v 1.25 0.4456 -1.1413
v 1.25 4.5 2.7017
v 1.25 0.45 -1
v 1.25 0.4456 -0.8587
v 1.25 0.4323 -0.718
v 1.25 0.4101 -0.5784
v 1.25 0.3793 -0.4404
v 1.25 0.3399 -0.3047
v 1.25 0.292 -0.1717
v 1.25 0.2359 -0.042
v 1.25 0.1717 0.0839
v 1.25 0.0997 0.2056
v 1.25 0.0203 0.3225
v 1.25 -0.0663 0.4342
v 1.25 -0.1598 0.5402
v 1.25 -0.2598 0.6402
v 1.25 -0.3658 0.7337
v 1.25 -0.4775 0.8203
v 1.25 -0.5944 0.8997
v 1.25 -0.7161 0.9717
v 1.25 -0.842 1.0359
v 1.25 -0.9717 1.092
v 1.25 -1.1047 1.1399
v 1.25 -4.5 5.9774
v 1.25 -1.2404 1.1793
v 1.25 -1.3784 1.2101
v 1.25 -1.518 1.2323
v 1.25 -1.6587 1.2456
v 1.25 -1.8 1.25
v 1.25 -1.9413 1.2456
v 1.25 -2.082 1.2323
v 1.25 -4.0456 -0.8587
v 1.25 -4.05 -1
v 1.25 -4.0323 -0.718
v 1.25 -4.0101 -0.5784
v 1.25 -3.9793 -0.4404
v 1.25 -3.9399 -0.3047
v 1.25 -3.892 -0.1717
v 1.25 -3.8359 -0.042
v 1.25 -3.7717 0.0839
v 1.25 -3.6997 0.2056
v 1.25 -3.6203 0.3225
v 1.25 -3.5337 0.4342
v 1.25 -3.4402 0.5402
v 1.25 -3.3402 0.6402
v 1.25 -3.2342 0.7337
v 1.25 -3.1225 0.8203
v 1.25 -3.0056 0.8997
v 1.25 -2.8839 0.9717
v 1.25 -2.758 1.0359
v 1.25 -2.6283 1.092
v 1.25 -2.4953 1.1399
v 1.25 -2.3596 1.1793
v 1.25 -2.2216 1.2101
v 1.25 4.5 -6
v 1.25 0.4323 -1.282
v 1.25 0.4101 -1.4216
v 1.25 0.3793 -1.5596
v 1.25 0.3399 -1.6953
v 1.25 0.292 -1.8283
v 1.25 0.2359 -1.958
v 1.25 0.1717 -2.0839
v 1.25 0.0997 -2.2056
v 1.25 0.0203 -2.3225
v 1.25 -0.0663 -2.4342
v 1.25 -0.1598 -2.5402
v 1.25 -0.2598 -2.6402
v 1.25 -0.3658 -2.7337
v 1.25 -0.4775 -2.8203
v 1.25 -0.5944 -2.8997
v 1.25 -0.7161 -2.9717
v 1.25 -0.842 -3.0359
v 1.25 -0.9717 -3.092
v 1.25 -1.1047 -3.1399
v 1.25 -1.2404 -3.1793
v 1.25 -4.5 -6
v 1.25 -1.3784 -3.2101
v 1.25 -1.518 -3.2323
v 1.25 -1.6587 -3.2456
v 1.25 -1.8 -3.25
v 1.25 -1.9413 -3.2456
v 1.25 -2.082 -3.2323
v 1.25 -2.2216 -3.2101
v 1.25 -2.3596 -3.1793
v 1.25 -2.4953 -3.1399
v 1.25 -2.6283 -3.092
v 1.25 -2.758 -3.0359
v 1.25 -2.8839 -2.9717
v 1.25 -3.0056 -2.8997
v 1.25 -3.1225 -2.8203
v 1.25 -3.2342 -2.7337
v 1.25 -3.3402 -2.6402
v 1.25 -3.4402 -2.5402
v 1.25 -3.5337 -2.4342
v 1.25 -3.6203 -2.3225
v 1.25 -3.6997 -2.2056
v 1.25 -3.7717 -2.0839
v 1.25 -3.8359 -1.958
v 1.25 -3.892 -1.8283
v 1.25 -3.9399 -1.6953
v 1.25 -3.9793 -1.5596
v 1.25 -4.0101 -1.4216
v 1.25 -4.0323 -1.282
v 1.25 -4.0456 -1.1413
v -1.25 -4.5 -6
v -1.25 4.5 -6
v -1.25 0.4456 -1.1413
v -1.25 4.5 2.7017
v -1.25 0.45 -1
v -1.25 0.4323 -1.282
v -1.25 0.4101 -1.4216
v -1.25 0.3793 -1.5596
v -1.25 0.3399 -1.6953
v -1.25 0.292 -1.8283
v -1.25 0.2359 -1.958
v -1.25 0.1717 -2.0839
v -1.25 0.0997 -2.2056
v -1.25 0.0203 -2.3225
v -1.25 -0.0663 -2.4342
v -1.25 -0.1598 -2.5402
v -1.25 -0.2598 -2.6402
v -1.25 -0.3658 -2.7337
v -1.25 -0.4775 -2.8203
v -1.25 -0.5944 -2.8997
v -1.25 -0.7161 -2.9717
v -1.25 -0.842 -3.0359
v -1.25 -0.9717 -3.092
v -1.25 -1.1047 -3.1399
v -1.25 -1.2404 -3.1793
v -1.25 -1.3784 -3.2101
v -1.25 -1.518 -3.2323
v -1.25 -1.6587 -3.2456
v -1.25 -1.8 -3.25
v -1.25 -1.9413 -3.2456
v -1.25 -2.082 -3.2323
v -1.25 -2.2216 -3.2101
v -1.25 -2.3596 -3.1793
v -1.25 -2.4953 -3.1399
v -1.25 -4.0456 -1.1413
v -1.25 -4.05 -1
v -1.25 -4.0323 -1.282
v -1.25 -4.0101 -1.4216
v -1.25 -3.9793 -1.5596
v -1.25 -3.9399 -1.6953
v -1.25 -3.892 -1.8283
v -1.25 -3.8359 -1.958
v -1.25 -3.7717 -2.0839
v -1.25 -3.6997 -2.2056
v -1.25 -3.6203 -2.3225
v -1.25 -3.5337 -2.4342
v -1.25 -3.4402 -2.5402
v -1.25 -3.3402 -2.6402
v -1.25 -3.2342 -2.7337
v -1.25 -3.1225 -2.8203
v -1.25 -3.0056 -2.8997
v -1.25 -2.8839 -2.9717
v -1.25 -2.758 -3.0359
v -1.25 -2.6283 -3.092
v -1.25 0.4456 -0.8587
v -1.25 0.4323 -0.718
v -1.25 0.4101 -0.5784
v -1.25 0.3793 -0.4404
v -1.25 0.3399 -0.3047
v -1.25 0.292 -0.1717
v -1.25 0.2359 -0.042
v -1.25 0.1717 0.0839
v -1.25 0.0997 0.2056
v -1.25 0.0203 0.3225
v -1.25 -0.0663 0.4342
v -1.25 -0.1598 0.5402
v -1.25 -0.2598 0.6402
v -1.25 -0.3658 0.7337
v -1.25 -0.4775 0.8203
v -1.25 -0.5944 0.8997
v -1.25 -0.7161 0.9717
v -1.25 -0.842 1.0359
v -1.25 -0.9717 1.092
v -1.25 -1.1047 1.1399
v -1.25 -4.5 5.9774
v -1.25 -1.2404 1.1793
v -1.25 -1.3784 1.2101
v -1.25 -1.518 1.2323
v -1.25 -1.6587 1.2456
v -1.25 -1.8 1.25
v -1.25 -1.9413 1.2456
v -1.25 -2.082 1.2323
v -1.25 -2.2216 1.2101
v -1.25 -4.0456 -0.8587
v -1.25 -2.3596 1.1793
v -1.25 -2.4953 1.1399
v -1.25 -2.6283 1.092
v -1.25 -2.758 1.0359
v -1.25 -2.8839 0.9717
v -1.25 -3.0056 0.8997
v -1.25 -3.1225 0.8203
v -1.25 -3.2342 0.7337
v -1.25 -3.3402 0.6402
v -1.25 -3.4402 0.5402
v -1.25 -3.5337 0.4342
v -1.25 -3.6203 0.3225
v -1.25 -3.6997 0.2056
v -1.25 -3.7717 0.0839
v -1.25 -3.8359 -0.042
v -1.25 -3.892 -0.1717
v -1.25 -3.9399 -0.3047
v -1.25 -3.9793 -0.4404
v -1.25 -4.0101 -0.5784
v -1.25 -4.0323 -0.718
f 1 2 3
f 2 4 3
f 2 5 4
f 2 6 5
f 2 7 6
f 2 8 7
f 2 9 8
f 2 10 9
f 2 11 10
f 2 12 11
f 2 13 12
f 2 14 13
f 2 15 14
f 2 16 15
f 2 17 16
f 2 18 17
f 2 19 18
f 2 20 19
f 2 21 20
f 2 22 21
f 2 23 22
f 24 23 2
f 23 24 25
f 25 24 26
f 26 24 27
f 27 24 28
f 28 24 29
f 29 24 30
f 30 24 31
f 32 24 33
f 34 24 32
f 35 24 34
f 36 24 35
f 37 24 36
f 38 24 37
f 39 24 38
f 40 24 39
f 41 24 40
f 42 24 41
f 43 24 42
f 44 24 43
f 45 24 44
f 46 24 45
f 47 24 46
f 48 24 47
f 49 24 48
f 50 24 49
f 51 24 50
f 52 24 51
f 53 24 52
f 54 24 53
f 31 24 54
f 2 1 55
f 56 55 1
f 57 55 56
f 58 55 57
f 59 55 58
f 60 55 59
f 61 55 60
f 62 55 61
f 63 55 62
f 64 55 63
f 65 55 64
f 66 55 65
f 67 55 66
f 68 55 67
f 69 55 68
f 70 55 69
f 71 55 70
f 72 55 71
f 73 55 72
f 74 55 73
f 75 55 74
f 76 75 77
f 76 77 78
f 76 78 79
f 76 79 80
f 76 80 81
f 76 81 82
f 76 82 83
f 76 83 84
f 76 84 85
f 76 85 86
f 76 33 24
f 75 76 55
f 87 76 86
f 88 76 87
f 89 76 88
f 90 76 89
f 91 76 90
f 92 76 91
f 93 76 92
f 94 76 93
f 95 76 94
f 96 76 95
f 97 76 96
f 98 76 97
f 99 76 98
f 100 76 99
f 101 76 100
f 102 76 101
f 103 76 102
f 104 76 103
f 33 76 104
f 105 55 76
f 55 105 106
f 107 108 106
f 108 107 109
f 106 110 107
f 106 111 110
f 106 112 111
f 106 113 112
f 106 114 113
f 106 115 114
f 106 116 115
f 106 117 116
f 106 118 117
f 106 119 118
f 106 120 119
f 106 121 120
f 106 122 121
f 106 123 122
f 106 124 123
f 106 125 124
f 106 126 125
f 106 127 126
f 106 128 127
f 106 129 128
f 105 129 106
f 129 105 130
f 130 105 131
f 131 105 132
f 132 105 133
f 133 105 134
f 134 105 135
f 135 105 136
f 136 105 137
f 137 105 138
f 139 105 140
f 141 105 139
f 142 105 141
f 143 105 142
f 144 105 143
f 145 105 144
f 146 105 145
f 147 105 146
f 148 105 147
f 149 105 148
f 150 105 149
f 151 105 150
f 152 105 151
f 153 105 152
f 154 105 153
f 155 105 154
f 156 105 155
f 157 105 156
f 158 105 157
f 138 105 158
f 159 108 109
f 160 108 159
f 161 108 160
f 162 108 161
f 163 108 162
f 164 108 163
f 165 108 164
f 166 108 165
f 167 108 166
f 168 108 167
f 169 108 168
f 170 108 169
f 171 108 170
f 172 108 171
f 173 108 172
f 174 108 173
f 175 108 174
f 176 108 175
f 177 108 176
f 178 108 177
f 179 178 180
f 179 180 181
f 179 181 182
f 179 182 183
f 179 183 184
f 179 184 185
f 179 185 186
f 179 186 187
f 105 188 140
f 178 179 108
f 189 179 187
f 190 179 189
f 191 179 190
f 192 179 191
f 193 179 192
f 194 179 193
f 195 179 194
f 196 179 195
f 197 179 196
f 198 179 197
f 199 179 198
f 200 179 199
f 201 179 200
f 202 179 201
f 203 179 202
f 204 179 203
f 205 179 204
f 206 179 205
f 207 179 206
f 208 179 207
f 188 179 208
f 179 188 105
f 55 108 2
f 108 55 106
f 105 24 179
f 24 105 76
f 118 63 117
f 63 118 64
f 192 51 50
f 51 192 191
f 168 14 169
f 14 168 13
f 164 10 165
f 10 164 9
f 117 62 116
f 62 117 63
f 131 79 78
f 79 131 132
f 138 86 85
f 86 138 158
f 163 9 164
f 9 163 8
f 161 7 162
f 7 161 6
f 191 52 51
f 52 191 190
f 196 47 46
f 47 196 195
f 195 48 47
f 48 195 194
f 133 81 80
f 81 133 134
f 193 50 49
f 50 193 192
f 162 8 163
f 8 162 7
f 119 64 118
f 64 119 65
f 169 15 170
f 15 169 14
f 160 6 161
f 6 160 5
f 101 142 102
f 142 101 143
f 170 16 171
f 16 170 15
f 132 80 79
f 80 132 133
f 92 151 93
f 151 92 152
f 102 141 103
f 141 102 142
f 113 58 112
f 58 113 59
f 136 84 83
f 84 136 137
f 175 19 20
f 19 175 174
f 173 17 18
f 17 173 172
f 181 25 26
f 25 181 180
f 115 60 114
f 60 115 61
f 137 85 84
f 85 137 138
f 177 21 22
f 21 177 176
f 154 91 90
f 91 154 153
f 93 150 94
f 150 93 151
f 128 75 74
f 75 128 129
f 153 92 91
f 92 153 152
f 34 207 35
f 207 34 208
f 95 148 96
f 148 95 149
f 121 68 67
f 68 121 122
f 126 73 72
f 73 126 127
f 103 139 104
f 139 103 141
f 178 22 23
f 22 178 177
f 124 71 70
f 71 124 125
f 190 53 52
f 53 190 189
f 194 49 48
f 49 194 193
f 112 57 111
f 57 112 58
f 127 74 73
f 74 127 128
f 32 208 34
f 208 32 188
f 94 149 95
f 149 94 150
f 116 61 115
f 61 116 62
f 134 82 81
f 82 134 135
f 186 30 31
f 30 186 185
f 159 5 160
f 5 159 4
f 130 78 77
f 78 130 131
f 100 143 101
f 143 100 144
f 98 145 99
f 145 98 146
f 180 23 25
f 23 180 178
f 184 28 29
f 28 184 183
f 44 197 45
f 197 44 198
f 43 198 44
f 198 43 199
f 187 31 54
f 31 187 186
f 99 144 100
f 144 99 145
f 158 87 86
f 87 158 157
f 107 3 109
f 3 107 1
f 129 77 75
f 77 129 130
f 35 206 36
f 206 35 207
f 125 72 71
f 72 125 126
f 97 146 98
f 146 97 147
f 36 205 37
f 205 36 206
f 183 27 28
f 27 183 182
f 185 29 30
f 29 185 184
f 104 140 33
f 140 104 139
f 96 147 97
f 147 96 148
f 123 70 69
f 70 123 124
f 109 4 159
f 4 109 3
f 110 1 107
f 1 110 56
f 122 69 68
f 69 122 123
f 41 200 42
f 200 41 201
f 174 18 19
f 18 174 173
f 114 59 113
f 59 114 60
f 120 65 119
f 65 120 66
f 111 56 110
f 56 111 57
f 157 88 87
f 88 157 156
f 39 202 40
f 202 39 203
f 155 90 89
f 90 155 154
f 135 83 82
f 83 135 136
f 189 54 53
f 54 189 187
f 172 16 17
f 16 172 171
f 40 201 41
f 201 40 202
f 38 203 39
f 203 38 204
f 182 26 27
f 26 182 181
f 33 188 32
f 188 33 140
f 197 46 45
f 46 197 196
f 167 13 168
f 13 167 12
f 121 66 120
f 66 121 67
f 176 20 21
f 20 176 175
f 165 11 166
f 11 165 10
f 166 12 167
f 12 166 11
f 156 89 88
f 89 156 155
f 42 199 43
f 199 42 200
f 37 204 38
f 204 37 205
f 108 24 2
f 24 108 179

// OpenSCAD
/*
 * Fridge parts.
 * Eye only
 */
 difference() {
   rotate([0, 0, 0]) {
     translate([0, 0, 0]) {
       cube([2.5, 9, 12], center=true);
     }
   }
   rotate([0, 90, 0]) {
     translate([1, -1.8, 0]) {
       cylinder(h=5, r=4.5 / 2, center=true, $fn=100);
     }
   }
   translate([0, 0, 7]) {
     rotate([-20, 0, 0]) {
       cube([3, 15, 5], center=true);
     }
   }
 }
